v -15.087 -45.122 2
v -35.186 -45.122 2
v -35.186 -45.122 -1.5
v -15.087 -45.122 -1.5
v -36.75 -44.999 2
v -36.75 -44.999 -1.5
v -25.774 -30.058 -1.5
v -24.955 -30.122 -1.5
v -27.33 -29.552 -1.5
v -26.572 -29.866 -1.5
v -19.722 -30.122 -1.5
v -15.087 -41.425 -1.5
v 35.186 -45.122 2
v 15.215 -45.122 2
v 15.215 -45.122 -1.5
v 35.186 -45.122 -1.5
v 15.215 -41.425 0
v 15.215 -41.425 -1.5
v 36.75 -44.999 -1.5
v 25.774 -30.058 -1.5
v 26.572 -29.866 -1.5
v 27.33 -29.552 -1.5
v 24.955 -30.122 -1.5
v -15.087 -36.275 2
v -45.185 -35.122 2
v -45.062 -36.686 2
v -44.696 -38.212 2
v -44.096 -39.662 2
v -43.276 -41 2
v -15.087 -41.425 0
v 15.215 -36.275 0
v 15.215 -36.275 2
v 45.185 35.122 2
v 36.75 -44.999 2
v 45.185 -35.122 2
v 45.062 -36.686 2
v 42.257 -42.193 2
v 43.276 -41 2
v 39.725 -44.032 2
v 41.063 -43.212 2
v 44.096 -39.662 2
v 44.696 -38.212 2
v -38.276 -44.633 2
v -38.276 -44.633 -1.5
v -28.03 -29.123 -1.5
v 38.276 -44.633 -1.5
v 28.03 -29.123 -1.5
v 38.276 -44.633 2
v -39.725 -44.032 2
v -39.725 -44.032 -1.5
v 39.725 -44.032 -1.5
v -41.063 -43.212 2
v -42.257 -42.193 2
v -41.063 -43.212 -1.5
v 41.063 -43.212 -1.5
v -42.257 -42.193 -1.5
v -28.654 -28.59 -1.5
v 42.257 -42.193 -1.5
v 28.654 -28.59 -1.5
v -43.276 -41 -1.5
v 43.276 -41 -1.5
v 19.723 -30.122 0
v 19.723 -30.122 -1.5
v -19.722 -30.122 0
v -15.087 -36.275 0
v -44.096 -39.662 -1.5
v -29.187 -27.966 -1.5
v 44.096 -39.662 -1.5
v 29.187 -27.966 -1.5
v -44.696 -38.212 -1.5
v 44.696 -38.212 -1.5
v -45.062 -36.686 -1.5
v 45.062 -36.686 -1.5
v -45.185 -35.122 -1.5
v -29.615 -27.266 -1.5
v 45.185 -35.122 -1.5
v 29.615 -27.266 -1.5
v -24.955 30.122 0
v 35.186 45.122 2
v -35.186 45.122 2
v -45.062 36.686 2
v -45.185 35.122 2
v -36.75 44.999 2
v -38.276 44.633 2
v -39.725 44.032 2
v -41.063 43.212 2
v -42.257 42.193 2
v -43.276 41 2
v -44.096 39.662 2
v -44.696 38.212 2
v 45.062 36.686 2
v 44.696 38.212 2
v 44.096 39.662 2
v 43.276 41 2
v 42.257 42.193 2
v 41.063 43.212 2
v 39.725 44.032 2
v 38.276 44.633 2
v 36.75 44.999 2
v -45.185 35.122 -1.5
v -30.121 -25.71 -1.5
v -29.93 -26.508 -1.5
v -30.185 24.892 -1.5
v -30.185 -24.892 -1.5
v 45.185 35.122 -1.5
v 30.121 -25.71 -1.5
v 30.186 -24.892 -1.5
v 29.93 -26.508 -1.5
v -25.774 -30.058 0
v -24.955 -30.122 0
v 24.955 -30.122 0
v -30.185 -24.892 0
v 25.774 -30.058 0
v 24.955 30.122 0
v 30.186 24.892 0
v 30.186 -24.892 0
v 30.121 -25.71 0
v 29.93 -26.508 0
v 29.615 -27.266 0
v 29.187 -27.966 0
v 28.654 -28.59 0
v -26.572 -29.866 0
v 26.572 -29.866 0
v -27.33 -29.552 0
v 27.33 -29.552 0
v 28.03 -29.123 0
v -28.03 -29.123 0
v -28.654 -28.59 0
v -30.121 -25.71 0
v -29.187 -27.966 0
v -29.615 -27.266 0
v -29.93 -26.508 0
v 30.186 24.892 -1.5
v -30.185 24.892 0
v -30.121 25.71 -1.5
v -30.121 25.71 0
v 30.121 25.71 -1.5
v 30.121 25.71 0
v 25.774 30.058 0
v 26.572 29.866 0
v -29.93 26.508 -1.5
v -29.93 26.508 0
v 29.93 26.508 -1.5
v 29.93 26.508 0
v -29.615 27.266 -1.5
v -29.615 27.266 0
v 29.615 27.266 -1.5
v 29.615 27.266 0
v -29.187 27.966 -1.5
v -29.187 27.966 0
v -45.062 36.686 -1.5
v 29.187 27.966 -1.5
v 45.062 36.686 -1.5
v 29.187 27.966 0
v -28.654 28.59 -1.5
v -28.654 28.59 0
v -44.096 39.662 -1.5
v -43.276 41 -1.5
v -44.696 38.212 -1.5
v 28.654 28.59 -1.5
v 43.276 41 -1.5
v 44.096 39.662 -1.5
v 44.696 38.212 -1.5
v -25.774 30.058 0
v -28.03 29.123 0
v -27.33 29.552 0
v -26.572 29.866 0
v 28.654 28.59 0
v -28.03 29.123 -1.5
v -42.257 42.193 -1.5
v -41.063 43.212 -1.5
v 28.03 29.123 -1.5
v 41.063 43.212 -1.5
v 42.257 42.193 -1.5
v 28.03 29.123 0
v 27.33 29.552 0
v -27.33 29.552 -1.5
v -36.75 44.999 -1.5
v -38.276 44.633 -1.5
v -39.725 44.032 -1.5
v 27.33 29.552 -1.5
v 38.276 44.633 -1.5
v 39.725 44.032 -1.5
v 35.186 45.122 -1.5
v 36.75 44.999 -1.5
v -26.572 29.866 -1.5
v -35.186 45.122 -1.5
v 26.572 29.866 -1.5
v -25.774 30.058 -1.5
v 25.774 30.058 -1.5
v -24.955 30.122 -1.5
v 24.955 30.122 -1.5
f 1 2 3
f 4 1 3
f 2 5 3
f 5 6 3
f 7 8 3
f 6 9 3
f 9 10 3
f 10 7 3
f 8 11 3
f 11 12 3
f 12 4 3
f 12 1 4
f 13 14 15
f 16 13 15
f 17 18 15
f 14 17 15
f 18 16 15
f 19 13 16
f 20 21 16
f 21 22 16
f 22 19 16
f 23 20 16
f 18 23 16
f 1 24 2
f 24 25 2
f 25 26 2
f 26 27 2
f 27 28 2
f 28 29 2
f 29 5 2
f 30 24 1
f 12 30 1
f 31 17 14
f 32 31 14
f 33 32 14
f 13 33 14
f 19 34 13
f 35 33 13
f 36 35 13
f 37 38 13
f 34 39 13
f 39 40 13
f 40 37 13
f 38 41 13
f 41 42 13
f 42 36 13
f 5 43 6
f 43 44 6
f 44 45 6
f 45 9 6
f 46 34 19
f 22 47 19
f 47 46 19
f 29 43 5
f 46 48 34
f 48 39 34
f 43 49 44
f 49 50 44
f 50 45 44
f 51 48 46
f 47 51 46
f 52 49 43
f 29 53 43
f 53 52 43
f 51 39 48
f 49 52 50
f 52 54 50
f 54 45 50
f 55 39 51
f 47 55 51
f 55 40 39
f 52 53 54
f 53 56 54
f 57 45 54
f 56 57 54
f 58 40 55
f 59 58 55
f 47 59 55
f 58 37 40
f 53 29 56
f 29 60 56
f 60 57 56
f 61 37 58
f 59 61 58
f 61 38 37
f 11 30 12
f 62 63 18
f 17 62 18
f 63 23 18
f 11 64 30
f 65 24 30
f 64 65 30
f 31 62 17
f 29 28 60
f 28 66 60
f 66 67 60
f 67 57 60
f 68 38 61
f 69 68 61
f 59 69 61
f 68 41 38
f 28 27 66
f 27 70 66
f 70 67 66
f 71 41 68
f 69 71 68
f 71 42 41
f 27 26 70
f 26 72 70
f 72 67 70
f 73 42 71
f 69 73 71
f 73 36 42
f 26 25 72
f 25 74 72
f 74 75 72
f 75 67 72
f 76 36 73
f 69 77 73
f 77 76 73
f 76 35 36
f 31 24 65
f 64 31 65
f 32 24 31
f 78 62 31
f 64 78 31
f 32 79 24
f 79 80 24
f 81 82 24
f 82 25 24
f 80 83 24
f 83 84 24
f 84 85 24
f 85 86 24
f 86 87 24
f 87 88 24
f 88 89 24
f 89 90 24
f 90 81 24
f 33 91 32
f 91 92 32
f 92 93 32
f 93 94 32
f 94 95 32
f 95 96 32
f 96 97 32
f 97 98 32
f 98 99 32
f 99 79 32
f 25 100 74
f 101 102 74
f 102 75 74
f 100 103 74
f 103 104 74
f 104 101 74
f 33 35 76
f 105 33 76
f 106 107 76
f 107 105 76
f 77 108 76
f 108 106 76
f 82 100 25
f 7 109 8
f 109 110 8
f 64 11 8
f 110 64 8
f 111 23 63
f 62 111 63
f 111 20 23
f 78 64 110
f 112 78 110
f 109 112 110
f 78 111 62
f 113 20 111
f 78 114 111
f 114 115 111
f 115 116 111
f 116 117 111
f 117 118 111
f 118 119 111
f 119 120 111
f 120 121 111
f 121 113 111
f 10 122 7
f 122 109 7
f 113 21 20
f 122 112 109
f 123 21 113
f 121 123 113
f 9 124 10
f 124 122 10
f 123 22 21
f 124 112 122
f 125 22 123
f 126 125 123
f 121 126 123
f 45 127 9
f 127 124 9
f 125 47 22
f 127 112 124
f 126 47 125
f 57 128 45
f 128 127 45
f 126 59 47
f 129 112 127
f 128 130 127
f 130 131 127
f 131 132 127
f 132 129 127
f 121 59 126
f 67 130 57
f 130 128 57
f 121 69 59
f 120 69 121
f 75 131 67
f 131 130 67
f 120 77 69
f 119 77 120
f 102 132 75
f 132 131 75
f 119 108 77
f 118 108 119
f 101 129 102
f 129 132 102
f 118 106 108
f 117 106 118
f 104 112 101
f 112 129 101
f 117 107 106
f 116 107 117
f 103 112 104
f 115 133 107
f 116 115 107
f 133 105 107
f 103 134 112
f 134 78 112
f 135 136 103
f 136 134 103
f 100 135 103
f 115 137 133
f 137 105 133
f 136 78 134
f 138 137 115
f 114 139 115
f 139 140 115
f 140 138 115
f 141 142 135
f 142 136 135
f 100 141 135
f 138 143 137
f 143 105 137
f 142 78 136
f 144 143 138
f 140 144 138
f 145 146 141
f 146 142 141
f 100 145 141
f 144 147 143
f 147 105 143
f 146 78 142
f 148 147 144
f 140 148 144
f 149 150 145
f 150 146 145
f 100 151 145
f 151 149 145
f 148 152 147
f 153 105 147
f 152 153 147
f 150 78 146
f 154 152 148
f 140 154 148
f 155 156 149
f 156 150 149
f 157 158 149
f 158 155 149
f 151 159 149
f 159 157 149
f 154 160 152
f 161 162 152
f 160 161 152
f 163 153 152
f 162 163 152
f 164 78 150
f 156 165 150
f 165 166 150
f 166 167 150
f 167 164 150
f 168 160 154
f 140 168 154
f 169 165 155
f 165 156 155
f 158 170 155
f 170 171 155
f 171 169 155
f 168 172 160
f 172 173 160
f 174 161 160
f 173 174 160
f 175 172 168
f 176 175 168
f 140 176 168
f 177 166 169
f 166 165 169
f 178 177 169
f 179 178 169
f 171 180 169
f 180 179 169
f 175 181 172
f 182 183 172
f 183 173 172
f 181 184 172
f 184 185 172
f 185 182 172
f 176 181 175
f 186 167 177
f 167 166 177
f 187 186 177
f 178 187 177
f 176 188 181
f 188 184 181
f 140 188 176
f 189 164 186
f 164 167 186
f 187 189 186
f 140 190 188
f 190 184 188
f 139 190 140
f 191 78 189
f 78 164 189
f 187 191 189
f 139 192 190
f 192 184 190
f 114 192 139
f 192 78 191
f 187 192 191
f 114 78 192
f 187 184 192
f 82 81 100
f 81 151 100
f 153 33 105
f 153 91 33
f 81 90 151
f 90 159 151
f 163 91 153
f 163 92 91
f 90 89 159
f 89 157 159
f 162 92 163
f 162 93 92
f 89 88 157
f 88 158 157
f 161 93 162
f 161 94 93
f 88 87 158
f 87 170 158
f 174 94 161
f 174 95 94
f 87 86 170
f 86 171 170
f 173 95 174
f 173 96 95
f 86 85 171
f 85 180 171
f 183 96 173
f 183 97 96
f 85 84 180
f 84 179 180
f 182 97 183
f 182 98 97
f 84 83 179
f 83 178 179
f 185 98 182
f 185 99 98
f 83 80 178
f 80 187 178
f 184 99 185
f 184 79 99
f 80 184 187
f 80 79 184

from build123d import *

# Parameters (mm, degrees)
BOSS_EXTRUDE1_DEPTH = 1.5
BOSS_EXTRUDE2_DEPTH = 2


with BuildPart() as part:
    # Sketch1 → Boss-Extrude1 (new body)
    with BuildSketch(Plane.XY):
        with BuildLine():
            Line((19.723160965, -30.122), (15.214660965, -41.425))
            Line((15.214660965, -41.425), (15.214660965, -45.122))
            Line((15.214660965, -45.122), (35.1855, -45.122))
            ThreePointArc((35.1855, -45.122), (42.256567812, -42.193067812), (45.1855, -35.122))
            Line((45.1855, -35.122), (45.1855, -30.122))
            Line((45.1855, -30.122), (45.1855, 35.122))
            ThreePointArc((45.1855, 35.122), (42.256567812, 42.193067812), (35.1855, 45.122))
            Line((35.1855, 45.122), (-35.1855, 45.122))
            ThreePointArc((-35.1855, 45.122), (-42.256567812, 42.193067812), (-45.1855, 35.122))
            Line((-45.1855, 35.122), (-45.1855, -30.122))
            Line((-45.1855, -30.122), (-45.1855, -35.122))
            ThreePointArc((-45.1855, -35.122), (-42.256567812, -42.193067812), (-35.1855, -45.122))
            Line((-35.1855, -45.122), (-15.086607553, -45.122))
            Line((-15.086607553, -45.122), (-15.086607553, -41.425))
            Line((-15.086607553, -41.425), (-19.722107553, -30.122))
            Line((-19.722107553, -30.122), (-24.9555, -30.122))
            ThreePointArc((-24.9555, -30.122), (-28.653668466, -28.590168466), (-30.1855, -24.892))
            Line((-30.1855, -24.892), (-30.1855, 24.892))
            ThreePointArc((-30.1855, 24.892), (-28.653668466, 28.590168466), (-24.9555, 30.122))
            Line((-24.9555, 30.122), (24.9555, 30.122))
            ThreePointArc((24.9555, 30.122), (28.653668466, 28.590168466), (30.1855, 24.892))
            Line((30.1855, 24.892), (30.1855, -24.892))
            ThreePointArc((30.1855, -24.892), (28.653668466, -28.590168466), (24.9555, -30.122))
            Line((24.9555, -30.122), (19.723160965, -30.122))
        make_face()
    extrude(amount=-BOSS_EXTRUDE1_DEPTH)

    # Sketch2 → Boss-Extrude2 (add)
    with BuildSketch(Plane.XY):
        with BuildLine():
            Line((-24.9555, 30.122), (24.9555, 30.122))
            ThreePointArc((24.9555, 30.122), (28.653668466, 28.590168466), (30.1855, 24.892))
            Line((30.1855, 24.892), (30.1855, -24.892))
            ThreePointArc((30.1855, -24.892), (28.653668466, -28.590168466), (24.9555, -30.122))
            Line((24.9555, -30.122), (19.723160965, -30.122))
            Line((19.723160965, -30.122), (15.214660965, -41.425))
            Line((15.214660965, -41.425), (15.214660965, -45.122))
            Line((15.214660965, -45.122), (35.1855, -45.122))
            ThreePointArc((35.1855, -45.122), (42.256567812, -42.193067812), (45.1855, -35.122))
            Line((45.1855, -35.122), (45.1855, 35.122))
            ThreePointArc((45.1855, 35.122), (42.256567812, 42.193067812), (35.1855, 45.122))
            Line((35.1855, 45.122), (-35.1855, 45.122))
            ThreePointArc((-35.1855, 45.122), (-42.256567812, 42.193067812), (-45.1855, 35.122))
            Line((-45.1855, 35.122), (-45.1855, -35.122))
            ThreePointArc((-45.1855, -35.122), (-42.256567812, -42.193067812), (-35.1855, -45.122))
            Line((-35.1855, -45.122), (-15.086607553, -45.122))
            Line((-15.086607553, -45.122), (-15.086607553, -41.425))
            Line((-15.086607553, -41.425), (-19.722107553, -30.122))
            Line((-19.722107553, -30.122), (-24.9555, -30.122))
            ThreePointArc((-24.9555, -30.122), (-28.653668466, -28.590168466), (-30.1855, -24.892))
            Line((-30.1855, -24.892), (-30.1855, 24.892))
            ThreePointArc((-30.1855, 24.892), (-28.653668466, 28.590168466), (-24.9555, 30.122))
        make_face()
        with BuildLine():
            Line((-19.722107553, -30.122), (-15.086607553, -41.425))
            Line((-15.086607553, -41.425), (-15.086607553, -36.275))
            Line((-15.086607553, -36.275), (15.214660965, -36.275))
            Line((15.214660965, -36.275), (15.214660965, -41.425))
            Line((15.214660965, -41.425), (19.723160965, -30.122))
            Line((19.723160965, -30.122), (24.9555, -30.122))
            ThreePointArc((24.9555, -30.122), (28.653668466, -28.590168466), (30.1855, -24.892))
            Line((30.1855, -24.892), (30.1855, 24.892))
            ThreePointArc((30.1855, 24.892), (28.653668466, 28.590168466), (24.9555, 30.122))
            Line((24.9555, 30.122), (-24.9555, 30.122))
            ThreePointArc((-24.9555, 30.122), (-28.653668466, 28.590168466), (-30.1855, 24.892))
            Line((-30.1855, 24.892), (-30.1855, -24.892))
            ThreePointArc((-30.1855, -24.892), (-28.653668466, -28.590168466), (-24.9555, -30.122))
            Line((-24.9555, -30.122), (-19.722107553, -30.122))
        make_face()
    extrude(amount=BOSS_EXTRUDE2_DEPTH)


solid = part.part
